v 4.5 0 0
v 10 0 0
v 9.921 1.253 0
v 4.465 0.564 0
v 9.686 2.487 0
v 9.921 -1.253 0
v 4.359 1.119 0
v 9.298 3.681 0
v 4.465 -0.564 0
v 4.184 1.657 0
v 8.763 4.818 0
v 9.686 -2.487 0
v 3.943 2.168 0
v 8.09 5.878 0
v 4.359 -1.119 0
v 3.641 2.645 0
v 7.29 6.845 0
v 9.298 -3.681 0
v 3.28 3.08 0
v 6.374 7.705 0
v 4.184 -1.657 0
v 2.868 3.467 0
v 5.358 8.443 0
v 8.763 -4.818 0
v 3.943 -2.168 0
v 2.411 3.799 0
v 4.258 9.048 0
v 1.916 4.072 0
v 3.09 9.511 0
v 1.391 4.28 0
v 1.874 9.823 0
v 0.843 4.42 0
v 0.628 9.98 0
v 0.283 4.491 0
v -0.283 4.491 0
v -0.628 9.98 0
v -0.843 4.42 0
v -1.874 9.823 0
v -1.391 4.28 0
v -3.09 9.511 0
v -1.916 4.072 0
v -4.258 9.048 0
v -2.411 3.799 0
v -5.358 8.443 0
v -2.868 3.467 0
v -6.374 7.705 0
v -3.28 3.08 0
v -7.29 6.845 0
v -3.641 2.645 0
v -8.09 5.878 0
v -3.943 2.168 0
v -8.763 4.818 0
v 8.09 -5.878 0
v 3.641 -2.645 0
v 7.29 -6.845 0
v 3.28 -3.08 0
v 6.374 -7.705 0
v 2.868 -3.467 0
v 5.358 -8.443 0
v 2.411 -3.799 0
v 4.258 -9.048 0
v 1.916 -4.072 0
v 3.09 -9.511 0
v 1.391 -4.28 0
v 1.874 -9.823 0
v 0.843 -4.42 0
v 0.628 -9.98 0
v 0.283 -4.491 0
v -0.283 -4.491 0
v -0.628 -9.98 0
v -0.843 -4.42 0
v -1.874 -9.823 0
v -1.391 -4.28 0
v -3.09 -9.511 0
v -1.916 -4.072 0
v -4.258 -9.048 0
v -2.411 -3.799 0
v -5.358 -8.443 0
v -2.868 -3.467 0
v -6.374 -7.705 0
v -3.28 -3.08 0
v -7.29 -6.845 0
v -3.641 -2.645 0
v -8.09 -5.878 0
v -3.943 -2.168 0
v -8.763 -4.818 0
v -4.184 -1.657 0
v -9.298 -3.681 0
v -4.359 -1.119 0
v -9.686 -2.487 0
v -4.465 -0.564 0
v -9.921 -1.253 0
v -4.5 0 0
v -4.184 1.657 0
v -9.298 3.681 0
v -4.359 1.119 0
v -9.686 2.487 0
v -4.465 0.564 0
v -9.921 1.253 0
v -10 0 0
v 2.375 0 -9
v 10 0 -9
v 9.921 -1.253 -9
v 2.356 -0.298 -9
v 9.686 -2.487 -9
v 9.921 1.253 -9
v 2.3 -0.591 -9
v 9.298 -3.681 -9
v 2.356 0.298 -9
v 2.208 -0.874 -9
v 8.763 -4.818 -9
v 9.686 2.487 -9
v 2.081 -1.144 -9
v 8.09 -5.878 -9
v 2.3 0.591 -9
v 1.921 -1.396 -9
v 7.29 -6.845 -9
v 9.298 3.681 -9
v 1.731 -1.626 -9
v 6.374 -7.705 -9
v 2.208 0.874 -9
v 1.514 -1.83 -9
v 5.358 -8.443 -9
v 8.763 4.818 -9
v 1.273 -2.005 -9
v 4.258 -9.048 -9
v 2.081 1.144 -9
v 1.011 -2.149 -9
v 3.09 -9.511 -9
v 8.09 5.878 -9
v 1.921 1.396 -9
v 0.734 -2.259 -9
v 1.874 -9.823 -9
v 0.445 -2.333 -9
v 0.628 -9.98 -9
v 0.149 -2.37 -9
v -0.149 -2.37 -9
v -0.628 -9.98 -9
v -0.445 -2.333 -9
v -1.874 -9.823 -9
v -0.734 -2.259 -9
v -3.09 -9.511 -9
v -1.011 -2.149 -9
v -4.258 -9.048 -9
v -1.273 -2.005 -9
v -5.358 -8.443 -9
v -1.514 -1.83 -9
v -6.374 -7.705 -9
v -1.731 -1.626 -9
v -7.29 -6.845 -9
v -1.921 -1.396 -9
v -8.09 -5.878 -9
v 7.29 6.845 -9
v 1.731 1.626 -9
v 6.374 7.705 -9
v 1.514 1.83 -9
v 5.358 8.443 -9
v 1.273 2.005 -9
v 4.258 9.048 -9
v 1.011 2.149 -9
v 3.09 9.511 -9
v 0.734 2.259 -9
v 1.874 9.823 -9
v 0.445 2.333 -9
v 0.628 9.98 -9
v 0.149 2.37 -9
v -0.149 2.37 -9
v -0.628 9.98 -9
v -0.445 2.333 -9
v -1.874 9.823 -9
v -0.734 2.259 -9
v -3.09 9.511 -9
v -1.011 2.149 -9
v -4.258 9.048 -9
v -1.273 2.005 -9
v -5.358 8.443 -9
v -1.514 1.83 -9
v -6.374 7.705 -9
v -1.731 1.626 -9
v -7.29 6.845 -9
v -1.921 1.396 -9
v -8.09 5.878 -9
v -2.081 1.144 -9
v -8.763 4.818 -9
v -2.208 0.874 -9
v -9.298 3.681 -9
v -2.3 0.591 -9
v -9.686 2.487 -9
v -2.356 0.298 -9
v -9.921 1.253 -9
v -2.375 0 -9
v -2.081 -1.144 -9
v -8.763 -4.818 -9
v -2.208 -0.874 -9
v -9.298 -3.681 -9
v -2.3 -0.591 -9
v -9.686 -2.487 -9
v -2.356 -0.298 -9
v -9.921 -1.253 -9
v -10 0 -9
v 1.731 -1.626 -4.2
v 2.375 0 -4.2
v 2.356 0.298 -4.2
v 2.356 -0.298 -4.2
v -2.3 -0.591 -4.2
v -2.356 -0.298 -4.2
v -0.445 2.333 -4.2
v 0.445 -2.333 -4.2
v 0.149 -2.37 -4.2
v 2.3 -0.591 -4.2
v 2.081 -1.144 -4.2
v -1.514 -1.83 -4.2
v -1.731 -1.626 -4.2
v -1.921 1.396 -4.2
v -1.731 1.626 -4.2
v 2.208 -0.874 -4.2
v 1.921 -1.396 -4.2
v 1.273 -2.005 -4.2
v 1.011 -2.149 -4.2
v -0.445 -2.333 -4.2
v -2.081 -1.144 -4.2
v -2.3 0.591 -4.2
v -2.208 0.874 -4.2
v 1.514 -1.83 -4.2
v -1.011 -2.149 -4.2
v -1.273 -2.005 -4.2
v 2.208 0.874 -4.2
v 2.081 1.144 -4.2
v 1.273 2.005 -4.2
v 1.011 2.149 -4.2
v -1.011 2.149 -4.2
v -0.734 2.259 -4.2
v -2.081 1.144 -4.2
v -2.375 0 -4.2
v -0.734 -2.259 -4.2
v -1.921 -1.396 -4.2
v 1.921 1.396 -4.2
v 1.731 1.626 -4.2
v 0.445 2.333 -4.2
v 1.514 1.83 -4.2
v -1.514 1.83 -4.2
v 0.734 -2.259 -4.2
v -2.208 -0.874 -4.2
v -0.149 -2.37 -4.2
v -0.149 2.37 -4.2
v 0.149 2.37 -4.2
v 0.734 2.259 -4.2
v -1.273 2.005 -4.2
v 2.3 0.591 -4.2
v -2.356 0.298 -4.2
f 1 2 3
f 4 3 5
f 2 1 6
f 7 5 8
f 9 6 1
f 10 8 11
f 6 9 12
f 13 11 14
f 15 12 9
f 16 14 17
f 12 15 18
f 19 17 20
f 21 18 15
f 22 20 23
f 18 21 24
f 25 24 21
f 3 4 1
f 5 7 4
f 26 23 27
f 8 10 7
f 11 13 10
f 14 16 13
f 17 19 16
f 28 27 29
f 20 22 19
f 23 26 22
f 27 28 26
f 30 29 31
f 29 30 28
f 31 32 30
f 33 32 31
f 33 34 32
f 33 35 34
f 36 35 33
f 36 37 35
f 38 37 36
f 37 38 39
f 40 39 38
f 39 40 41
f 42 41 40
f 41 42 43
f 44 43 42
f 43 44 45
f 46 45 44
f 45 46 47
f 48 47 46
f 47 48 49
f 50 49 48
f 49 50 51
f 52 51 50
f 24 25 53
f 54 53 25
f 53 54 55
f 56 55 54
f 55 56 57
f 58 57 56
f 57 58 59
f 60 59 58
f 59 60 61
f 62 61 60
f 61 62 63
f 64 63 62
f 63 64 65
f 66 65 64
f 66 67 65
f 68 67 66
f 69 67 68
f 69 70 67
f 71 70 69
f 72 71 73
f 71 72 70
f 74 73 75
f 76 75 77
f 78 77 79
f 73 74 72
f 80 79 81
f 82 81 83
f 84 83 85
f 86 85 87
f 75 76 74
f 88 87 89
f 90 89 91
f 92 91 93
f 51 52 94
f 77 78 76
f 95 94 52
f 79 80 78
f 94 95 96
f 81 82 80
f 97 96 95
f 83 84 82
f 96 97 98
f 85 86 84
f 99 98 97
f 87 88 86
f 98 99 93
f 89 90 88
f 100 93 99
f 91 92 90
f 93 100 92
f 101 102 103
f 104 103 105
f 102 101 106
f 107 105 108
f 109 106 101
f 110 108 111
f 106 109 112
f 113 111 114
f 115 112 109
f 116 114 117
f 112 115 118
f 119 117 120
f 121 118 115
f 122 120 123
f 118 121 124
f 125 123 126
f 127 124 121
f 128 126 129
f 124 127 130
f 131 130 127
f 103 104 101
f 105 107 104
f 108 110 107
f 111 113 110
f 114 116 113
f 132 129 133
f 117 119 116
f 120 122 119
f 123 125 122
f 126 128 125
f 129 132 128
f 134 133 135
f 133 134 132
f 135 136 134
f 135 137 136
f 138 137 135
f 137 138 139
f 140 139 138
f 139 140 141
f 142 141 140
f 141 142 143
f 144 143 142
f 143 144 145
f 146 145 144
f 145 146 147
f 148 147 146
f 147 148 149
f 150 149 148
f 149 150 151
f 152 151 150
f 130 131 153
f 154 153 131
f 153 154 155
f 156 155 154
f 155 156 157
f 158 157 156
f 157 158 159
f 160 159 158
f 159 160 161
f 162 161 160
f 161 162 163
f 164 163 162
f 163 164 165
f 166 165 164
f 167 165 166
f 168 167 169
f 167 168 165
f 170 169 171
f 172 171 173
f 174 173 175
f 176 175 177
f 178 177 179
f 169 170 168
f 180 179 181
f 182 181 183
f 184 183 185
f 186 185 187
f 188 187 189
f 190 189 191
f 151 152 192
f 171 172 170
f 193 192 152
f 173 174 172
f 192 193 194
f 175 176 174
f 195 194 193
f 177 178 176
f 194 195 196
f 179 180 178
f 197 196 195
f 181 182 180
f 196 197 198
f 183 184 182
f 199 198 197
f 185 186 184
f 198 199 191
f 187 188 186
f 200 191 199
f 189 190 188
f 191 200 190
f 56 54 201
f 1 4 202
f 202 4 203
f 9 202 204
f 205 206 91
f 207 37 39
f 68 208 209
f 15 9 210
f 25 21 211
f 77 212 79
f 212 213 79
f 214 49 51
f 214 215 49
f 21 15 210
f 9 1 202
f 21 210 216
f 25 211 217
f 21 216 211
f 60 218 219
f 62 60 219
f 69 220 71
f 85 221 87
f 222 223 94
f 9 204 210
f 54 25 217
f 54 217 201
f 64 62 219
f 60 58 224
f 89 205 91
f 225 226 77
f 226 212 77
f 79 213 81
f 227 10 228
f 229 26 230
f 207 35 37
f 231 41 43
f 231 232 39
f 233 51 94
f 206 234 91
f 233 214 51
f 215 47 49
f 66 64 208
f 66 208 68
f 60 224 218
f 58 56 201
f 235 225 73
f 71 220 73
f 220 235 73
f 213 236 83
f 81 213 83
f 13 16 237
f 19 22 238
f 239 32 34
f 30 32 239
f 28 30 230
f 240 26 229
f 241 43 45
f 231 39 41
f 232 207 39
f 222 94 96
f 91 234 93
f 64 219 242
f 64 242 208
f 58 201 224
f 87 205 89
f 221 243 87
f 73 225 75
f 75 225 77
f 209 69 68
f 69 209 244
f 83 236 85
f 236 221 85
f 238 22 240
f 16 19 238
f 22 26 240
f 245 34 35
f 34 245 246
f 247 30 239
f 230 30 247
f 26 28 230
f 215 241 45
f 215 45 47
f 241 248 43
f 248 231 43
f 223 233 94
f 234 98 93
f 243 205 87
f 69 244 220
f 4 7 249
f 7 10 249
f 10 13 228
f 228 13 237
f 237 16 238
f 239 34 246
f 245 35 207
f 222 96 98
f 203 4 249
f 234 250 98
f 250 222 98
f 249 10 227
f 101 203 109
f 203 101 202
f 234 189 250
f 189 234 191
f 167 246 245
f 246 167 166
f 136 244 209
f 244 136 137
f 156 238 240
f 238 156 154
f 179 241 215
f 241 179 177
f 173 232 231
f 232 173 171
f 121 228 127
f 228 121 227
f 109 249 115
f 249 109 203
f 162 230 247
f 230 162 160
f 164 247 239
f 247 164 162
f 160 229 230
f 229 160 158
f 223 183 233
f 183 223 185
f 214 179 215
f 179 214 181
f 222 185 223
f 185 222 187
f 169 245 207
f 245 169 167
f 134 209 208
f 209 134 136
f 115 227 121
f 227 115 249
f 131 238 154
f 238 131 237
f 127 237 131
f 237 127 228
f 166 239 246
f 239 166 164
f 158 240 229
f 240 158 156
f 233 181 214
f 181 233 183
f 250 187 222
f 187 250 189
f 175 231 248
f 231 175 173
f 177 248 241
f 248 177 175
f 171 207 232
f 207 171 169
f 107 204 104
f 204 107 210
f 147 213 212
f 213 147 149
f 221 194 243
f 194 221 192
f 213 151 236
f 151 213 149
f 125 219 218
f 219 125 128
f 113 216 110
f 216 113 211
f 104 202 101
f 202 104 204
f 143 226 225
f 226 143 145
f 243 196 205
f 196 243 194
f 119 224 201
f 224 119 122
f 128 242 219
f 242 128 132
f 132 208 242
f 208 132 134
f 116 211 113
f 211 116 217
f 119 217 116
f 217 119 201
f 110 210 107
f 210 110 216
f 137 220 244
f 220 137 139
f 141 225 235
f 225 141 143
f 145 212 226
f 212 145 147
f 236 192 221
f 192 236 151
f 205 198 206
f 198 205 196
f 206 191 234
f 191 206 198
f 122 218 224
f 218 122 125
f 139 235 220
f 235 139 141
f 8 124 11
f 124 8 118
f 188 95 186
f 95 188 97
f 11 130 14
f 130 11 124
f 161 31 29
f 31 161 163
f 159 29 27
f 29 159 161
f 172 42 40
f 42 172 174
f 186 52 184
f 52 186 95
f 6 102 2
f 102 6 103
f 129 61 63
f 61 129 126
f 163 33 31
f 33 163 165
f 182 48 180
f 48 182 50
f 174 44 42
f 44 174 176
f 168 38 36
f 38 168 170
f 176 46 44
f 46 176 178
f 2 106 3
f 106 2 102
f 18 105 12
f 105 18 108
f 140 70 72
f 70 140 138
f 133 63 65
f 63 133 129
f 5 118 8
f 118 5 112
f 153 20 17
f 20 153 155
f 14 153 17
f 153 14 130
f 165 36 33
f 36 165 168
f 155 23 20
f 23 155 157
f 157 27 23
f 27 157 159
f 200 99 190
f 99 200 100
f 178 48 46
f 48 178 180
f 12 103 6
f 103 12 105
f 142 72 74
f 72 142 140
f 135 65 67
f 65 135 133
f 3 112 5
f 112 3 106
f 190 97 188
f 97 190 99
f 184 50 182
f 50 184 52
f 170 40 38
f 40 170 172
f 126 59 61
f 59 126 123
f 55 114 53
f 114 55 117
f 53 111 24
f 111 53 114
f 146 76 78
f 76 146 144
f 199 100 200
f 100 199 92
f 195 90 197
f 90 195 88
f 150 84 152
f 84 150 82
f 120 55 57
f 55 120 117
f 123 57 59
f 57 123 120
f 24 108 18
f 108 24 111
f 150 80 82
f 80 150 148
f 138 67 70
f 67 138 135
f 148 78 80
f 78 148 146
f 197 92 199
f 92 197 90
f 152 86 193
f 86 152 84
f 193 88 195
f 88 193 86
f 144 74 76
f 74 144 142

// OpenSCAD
$fn = 50;


difference() {
	union() {
		translate(v = [0, 0, -9.0000000000]) {
			cylinder(h = 9, r = 10.0000000000);
		}
		cylinder(h = 0, r = 13.0000000000);
	}
	union() {
		translate(v = [0, 0, 0]) {
			rotate(a = [0, 0, 0]) {
				difference() {
					union() {
						#translate(v = [0, 0, -9.0000000000]) {
							cylinder(h = 9, r = 2.2500000000);
						}
						#translate(v = [0, 0, -4.2000000000]) {
							cylinder(h = 4.2000000000, r = 10.0000000000, r1 = 2.3750000000, r2 = 4.5000000000);
						}
						#translate(v = [0, 0, -9.0000000000]) {
							cylinder(h = 9, r = 2.3750000000);
						}
						#translate(v = [0, 0, -9.0000000000]) {
							cylinder(h = 9, r = 2.2500000000);
						}
					}
					union();
				}
			}
		}
	}
}
